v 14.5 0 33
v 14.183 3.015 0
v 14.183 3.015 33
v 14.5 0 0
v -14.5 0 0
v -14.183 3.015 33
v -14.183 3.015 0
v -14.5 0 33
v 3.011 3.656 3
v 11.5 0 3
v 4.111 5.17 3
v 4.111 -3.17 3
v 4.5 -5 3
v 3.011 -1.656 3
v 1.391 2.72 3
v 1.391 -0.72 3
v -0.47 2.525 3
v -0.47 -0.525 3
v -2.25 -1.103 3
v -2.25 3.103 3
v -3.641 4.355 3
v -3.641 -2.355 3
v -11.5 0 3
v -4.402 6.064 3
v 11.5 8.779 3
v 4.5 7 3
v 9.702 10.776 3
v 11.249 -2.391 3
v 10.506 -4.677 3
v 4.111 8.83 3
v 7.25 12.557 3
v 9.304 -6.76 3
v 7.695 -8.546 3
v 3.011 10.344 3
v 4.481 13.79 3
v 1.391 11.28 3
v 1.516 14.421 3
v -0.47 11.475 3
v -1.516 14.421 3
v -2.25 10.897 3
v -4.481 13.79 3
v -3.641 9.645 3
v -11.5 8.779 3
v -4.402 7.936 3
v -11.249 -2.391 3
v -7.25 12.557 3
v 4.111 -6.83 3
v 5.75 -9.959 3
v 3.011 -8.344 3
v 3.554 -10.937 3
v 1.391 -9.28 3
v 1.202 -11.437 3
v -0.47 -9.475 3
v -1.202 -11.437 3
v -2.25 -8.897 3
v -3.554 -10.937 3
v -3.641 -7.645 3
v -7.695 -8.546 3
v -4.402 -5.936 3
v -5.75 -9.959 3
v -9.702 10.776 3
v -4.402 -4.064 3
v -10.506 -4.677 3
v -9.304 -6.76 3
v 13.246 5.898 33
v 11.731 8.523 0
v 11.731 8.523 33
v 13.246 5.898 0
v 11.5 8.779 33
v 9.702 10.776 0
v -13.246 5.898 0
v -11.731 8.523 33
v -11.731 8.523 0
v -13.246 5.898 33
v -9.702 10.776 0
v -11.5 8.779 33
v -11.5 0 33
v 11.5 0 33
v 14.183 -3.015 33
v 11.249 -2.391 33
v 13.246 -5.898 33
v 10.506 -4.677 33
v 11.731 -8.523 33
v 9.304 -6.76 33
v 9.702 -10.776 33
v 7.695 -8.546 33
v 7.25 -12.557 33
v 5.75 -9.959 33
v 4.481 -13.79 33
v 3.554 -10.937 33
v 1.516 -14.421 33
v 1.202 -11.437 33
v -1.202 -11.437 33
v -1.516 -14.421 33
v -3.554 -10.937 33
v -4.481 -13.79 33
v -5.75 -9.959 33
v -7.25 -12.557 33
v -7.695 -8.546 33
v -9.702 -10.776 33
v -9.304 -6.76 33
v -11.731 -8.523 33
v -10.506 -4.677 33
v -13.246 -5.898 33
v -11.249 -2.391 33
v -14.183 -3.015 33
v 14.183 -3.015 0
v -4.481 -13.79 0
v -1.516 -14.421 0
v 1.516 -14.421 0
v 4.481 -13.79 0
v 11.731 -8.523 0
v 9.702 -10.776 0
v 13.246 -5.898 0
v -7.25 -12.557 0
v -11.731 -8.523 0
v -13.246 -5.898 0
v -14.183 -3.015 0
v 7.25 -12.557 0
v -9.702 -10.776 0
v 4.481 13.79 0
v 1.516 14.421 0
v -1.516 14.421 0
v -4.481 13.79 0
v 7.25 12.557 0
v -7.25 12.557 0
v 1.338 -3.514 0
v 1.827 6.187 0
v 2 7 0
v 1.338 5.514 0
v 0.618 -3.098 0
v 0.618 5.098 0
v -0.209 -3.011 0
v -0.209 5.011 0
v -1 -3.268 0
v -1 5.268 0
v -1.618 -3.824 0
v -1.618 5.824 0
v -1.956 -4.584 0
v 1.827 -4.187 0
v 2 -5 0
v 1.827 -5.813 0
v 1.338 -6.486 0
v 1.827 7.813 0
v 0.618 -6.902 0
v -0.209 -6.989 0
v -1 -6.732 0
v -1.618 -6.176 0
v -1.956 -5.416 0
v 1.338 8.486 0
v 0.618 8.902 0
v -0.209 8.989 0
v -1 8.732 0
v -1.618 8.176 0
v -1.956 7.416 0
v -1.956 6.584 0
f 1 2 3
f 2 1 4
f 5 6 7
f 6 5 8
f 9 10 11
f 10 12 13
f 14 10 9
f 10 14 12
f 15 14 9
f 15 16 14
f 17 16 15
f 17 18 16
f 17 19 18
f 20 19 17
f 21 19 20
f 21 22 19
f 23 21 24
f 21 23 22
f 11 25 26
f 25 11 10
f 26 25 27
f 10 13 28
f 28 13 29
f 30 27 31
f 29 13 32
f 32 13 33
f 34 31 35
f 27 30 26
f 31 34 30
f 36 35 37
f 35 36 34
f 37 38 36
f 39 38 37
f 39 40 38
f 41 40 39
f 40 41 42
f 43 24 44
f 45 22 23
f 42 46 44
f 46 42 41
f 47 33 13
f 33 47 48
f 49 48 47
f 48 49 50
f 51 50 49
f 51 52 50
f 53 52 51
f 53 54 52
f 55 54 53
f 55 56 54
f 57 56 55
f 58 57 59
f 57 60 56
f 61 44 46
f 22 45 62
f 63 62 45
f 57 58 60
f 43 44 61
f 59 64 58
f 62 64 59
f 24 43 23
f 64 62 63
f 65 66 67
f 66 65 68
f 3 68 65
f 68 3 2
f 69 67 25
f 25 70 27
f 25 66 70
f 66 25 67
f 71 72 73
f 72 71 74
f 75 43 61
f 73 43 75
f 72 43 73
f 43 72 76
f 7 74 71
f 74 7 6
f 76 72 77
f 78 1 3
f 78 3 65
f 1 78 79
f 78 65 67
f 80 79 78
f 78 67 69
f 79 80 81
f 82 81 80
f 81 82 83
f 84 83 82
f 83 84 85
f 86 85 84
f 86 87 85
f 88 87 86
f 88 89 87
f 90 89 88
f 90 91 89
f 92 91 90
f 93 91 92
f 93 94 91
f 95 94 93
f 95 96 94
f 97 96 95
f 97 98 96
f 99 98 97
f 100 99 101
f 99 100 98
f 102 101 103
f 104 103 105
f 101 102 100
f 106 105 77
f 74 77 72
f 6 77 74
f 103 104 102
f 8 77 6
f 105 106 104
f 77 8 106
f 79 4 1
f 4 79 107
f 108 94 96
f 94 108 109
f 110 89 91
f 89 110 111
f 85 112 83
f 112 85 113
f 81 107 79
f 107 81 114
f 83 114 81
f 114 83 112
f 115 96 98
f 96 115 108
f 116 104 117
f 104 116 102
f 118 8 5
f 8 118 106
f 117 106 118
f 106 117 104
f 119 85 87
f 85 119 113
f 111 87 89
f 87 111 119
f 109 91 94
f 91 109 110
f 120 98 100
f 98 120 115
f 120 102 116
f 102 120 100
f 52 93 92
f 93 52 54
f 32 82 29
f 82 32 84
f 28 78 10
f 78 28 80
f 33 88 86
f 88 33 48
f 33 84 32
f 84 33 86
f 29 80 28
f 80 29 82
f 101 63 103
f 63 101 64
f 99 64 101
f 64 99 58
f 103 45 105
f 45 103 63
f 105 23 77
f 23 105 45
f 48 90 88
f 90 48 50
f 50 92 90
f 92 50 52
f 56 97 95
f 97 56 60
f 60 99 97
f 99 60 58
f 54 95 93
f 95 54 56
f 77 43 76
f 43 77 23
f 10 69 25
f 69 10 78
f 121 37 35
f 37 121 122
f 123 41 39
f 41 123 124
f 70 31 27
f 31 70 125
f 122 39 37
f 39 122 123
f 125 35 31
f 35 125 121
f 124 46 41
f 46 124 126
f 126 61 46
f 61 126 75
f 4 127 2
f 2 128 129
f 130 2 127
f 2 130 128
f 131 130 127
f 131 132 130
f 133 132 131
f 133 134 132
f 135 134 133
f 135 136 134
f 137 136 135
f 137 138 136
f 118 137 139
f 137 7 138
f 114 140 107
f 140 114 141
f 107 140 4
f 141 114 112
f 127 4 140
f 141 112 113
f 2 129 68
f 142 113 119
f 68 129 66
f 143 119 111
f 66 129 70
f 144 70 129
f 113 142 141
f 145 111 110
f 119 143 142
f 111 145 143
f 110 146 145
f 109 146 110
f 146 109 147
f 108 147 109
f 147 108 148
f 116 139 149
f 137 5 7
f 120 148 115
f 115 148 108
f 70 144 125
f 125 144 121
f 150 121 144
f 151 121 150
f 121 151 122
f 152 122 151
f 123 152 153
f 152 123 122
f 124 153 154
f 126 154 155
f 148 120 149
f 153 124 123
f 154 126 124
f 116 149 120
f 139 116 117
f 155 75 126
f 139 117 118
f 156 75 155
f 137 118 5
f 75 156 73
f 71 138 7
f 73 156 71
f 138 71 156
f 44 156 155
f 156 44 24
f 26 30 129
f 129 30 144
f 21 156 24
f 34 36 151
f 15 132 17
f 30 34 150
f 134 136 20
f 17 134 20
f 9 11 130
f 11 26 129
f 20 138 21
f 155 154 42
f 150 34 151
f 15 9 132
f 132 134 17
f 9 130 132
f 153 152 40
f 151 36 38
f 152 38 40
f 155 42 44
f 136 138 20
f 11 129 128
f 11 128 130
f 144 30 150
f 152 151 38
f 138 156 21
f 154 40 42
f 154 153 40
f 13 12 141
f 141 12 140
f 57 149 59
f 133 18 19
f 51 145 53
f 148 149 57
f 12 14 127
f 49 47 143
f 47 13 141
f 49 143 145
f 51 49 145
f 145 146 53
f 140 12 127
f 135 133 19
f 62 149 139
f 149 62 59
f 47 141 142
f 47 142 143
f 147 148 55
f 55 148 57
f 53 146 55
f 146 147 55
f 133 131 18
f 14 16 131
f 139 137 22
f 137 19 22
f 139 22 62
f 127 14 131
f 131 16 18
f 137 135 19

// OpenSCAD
diameter = 23;
holder_length = 30;
thickness = 3;
screw_diameter = 4;
screw_diameter_big = 9;

difference() {
    cylinder(r=diameter/2 + thickness,  thickness);
    translate([0, 7, 0]) cylinder(r1=screw_diameter/2, r2=screw_diameter_big/2, thickness);
    translate([0, -5, 0]) cylinder(r1=screw_diameter/2, r2=screw_diameter_big/2, thickness);
}

translate([0, 0, thickness]) difference() {
    cylinder(r=diameter/2 + thickness,  holder_length);
    cylinder(r=diameter/2,  holder_length);
    translate([-diameter/2, 0, 0]) cube([diameter, diameter, holder_length]);
}
